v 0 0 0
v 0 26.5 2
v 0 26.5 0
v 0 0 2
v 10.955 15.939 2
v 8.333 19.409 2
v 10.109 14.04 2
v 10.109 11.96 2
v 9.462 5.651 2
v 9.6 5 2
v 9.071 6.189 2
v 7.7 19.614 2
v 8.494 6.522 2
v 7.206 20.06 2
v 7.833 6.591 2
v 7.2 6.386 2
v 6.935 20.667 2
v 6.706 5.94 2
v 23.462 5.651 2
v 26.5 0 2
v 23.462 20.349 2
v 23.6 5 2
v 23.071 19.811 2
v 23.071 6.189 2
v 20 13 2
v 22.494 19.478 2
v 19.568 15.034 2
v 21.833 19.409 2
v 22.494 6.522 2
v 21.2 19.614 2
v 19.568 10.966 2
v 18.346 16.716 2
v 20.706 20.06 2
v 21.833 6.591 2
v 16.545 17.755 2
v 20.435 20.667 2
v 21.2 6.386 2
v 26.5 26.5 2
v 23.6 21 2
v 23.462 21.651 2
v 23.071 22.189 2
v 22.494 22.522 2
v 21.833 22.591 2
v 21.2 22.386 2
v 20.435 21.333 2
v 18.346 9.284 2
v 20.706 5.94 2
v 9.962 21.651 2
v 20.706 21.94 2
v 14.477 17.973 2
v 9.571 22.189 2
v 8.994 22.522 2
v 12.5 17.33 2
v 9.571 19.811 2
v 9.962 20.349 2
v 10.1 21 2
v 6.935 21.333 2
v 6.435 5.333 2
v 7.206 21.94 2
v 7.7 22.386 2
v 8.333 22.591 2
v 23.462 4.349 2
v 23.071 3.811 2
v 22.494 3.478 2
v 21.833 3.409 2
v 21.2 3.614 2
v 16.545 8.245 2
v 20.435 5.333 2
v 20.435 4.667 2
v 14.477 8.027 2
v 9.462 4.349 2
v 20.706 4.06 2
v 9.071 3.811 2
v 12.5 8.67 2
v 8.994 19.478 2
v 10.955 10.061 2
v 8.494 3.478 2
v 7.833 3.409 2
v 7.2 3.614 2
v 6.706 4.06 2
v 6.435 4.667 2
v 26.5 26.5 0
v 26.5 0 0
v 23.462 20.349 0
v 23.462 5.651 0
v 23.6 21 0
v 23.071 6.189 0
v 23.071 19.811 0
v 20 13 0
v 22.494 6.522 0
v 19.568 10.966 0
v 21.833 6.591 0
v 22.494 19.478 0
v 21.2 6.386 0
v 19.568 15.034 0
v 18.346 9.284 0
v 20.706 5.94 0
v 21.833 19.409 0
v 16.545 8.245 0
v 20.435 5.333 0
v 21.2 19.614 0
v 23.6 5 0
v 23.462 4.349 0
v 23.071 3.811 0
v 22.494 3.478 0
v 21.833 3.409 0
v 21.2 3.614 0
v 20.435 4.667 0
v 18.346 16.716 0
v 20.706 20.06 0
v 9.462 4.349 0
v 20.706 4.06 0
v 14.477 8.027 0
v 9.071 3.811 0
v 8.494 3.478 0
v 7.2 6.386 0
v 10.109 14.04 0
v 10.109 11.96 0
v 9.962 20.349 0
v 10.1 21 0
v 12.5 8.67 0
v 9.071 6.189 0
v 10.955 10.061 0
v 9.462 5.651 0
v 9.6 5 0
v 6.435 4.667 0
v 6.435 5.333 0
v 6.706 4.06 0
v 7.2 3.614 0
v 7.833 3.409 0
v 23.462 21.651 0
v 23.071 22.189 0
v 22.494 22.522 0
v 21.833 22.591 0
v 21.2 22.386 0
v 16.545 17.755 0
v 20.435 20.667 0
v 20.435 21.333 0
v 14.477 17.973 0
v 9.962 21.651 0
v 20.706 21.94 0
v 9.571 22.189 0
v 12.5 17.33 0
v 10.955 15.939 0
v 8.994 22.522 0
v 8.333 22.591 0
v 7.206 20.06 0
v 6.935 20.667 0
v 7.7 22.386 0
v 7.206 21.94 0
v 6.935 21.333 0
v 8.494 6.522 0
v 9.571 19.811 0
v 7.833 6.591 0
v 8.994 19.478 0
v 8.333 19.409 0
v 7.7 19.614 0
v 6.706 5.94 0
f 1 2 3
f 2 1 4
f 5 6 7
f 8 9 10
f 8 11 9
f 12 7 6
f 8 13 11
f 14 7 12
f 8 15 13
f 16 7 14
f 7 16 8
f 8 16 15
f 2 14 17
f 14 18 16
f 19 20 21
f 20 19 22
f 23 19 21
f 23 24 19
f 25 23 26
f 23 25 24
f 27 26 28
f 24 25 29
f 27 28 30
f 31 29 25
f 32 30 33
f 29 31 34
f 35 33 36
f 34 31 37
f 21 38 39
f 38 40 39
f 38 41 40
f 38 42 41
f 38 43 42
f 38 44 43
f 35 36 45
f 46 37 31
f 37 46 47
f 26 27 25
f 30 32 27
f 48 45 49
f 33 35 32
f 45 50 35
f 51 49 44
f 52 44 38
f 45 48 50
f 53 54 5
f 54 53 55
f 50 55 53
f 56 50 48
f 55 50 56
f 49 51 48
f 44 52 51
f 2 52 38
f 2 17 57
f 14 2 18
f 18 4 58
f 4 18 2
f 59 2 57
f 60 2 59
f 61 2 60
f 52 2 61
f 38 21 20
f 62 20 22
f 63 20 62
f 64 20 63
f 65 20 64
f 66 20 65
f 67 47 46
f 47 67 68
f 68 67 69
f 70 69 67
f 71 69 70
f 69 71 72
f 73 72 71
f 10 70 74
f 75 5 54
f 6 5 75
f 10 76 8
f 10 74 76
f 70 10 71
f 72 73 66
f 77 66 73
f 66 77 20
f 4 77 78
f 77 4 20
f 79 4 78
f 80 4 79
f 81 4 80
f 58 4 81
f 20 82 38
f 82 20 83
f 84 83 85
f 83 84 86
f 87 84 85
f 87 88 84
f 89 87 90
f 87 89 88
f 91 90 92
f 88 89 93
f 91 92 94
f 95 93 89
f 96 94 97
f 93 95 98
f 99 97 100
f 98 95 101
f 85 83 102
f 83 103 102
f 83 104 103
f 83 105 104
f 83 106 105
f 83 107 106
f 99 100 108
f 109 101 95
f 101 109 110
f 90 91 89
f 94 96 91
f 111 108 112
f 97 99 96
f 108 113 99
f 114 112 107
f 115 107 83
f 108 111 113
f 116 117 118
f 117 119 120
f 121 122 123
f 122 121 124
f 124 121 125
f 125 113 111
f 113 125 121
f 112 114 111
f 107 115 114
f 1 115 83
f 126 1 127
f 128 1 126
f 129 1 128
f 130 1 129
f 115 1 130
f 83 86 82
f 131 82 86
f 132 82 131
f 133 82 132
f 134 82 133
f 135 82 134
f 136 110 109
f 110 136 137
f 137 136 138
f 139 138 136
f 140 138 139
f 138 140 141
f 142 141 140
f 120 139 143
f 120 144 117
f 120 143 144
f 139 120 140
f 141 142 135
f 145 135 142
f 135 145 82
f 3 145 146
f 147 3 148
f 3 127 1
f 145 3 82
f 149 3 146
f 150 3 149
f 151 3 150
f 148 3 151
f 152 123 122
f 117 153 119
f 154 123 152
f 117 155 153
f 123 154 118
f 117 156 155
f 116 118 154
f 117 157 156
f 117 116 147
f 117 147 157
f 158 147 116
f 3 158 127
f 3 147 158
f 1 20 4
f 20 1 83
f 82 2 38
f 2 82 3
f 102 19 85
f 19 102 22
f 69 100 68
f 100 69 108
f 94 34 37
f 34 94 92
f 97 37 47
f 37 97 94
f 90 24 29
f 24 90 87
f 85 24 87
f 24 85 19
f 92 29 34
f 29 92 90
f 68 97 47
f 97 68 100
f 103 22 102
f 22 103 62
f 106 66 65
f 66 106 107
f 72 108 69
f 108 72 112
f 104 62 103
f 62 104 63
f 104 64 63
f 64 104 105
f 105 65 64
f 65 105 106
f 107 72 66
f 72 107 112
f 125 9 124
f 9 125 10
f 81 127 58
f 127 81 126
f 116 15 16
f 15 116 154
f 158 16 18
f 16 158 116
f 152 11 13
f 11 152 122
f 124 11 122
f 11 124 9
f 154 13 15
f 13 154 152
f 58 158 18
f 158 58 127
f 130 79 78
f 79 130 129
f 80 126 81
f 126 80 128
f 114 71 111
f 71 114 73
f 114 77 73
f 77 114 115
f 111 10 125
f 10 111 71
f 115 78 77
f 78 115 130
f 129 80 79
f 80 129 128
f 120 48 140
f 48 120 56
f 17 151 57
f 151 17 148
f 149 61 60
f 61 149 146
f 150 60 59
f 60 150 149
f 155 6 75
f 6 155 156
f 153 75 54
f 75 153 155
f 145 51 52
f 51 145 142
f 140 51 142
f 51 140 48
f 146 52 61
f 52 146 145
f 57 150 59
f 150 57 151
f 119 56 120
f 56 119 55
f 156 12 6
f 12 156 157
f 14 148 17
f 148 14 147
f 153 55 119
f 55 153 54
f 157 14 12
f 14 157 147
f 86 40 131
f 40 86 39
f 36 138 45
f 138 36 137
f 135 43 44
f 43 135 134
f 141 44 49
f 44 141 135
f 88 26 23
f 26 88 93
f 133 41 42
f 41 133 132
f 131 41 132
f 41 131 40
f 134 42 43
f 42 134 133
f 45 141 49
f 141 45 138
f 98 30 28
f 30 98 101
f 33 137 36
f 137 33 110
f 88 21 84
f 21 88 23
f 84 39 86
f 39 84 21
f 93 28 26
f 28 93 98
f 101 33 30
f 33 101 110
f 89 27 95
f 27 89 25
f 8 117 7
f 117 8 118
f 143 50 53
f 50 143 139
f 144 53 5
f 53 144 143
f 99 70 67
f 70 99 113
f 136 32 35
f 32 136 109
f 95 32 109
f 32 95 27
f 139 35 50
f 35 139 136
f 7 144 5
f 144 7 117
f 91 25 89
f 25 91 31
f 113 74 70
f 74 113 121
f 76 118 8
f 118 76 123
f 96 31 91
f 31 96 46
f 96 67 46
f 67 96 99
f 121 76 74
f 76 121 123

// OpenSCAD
difference() {
    union() {
        cube([26.5,26.5,2]);
    }
    translate([22,5,-1]) cylinder(r=1.6, h=11, $fn=15);
    translate([8,5,-1]) cylinder(r=1.6, h=11, $fn=15);
    translate([8.5,21,-1]) cylinder(r=1.6, h=11, $fn=15);
    translate([22,21,-1]) cylinder(r=1.6, h=11, $fn=15);
    translate([15,13,-1]) cylinder(r=5, h=11, $fn=15);
}
/*
translate([-11,-11,0] ) {
    #cube([22,22,20]);
}

translate([-6,-6,0] ) {
    #cube([12,12,10]);
}*/
